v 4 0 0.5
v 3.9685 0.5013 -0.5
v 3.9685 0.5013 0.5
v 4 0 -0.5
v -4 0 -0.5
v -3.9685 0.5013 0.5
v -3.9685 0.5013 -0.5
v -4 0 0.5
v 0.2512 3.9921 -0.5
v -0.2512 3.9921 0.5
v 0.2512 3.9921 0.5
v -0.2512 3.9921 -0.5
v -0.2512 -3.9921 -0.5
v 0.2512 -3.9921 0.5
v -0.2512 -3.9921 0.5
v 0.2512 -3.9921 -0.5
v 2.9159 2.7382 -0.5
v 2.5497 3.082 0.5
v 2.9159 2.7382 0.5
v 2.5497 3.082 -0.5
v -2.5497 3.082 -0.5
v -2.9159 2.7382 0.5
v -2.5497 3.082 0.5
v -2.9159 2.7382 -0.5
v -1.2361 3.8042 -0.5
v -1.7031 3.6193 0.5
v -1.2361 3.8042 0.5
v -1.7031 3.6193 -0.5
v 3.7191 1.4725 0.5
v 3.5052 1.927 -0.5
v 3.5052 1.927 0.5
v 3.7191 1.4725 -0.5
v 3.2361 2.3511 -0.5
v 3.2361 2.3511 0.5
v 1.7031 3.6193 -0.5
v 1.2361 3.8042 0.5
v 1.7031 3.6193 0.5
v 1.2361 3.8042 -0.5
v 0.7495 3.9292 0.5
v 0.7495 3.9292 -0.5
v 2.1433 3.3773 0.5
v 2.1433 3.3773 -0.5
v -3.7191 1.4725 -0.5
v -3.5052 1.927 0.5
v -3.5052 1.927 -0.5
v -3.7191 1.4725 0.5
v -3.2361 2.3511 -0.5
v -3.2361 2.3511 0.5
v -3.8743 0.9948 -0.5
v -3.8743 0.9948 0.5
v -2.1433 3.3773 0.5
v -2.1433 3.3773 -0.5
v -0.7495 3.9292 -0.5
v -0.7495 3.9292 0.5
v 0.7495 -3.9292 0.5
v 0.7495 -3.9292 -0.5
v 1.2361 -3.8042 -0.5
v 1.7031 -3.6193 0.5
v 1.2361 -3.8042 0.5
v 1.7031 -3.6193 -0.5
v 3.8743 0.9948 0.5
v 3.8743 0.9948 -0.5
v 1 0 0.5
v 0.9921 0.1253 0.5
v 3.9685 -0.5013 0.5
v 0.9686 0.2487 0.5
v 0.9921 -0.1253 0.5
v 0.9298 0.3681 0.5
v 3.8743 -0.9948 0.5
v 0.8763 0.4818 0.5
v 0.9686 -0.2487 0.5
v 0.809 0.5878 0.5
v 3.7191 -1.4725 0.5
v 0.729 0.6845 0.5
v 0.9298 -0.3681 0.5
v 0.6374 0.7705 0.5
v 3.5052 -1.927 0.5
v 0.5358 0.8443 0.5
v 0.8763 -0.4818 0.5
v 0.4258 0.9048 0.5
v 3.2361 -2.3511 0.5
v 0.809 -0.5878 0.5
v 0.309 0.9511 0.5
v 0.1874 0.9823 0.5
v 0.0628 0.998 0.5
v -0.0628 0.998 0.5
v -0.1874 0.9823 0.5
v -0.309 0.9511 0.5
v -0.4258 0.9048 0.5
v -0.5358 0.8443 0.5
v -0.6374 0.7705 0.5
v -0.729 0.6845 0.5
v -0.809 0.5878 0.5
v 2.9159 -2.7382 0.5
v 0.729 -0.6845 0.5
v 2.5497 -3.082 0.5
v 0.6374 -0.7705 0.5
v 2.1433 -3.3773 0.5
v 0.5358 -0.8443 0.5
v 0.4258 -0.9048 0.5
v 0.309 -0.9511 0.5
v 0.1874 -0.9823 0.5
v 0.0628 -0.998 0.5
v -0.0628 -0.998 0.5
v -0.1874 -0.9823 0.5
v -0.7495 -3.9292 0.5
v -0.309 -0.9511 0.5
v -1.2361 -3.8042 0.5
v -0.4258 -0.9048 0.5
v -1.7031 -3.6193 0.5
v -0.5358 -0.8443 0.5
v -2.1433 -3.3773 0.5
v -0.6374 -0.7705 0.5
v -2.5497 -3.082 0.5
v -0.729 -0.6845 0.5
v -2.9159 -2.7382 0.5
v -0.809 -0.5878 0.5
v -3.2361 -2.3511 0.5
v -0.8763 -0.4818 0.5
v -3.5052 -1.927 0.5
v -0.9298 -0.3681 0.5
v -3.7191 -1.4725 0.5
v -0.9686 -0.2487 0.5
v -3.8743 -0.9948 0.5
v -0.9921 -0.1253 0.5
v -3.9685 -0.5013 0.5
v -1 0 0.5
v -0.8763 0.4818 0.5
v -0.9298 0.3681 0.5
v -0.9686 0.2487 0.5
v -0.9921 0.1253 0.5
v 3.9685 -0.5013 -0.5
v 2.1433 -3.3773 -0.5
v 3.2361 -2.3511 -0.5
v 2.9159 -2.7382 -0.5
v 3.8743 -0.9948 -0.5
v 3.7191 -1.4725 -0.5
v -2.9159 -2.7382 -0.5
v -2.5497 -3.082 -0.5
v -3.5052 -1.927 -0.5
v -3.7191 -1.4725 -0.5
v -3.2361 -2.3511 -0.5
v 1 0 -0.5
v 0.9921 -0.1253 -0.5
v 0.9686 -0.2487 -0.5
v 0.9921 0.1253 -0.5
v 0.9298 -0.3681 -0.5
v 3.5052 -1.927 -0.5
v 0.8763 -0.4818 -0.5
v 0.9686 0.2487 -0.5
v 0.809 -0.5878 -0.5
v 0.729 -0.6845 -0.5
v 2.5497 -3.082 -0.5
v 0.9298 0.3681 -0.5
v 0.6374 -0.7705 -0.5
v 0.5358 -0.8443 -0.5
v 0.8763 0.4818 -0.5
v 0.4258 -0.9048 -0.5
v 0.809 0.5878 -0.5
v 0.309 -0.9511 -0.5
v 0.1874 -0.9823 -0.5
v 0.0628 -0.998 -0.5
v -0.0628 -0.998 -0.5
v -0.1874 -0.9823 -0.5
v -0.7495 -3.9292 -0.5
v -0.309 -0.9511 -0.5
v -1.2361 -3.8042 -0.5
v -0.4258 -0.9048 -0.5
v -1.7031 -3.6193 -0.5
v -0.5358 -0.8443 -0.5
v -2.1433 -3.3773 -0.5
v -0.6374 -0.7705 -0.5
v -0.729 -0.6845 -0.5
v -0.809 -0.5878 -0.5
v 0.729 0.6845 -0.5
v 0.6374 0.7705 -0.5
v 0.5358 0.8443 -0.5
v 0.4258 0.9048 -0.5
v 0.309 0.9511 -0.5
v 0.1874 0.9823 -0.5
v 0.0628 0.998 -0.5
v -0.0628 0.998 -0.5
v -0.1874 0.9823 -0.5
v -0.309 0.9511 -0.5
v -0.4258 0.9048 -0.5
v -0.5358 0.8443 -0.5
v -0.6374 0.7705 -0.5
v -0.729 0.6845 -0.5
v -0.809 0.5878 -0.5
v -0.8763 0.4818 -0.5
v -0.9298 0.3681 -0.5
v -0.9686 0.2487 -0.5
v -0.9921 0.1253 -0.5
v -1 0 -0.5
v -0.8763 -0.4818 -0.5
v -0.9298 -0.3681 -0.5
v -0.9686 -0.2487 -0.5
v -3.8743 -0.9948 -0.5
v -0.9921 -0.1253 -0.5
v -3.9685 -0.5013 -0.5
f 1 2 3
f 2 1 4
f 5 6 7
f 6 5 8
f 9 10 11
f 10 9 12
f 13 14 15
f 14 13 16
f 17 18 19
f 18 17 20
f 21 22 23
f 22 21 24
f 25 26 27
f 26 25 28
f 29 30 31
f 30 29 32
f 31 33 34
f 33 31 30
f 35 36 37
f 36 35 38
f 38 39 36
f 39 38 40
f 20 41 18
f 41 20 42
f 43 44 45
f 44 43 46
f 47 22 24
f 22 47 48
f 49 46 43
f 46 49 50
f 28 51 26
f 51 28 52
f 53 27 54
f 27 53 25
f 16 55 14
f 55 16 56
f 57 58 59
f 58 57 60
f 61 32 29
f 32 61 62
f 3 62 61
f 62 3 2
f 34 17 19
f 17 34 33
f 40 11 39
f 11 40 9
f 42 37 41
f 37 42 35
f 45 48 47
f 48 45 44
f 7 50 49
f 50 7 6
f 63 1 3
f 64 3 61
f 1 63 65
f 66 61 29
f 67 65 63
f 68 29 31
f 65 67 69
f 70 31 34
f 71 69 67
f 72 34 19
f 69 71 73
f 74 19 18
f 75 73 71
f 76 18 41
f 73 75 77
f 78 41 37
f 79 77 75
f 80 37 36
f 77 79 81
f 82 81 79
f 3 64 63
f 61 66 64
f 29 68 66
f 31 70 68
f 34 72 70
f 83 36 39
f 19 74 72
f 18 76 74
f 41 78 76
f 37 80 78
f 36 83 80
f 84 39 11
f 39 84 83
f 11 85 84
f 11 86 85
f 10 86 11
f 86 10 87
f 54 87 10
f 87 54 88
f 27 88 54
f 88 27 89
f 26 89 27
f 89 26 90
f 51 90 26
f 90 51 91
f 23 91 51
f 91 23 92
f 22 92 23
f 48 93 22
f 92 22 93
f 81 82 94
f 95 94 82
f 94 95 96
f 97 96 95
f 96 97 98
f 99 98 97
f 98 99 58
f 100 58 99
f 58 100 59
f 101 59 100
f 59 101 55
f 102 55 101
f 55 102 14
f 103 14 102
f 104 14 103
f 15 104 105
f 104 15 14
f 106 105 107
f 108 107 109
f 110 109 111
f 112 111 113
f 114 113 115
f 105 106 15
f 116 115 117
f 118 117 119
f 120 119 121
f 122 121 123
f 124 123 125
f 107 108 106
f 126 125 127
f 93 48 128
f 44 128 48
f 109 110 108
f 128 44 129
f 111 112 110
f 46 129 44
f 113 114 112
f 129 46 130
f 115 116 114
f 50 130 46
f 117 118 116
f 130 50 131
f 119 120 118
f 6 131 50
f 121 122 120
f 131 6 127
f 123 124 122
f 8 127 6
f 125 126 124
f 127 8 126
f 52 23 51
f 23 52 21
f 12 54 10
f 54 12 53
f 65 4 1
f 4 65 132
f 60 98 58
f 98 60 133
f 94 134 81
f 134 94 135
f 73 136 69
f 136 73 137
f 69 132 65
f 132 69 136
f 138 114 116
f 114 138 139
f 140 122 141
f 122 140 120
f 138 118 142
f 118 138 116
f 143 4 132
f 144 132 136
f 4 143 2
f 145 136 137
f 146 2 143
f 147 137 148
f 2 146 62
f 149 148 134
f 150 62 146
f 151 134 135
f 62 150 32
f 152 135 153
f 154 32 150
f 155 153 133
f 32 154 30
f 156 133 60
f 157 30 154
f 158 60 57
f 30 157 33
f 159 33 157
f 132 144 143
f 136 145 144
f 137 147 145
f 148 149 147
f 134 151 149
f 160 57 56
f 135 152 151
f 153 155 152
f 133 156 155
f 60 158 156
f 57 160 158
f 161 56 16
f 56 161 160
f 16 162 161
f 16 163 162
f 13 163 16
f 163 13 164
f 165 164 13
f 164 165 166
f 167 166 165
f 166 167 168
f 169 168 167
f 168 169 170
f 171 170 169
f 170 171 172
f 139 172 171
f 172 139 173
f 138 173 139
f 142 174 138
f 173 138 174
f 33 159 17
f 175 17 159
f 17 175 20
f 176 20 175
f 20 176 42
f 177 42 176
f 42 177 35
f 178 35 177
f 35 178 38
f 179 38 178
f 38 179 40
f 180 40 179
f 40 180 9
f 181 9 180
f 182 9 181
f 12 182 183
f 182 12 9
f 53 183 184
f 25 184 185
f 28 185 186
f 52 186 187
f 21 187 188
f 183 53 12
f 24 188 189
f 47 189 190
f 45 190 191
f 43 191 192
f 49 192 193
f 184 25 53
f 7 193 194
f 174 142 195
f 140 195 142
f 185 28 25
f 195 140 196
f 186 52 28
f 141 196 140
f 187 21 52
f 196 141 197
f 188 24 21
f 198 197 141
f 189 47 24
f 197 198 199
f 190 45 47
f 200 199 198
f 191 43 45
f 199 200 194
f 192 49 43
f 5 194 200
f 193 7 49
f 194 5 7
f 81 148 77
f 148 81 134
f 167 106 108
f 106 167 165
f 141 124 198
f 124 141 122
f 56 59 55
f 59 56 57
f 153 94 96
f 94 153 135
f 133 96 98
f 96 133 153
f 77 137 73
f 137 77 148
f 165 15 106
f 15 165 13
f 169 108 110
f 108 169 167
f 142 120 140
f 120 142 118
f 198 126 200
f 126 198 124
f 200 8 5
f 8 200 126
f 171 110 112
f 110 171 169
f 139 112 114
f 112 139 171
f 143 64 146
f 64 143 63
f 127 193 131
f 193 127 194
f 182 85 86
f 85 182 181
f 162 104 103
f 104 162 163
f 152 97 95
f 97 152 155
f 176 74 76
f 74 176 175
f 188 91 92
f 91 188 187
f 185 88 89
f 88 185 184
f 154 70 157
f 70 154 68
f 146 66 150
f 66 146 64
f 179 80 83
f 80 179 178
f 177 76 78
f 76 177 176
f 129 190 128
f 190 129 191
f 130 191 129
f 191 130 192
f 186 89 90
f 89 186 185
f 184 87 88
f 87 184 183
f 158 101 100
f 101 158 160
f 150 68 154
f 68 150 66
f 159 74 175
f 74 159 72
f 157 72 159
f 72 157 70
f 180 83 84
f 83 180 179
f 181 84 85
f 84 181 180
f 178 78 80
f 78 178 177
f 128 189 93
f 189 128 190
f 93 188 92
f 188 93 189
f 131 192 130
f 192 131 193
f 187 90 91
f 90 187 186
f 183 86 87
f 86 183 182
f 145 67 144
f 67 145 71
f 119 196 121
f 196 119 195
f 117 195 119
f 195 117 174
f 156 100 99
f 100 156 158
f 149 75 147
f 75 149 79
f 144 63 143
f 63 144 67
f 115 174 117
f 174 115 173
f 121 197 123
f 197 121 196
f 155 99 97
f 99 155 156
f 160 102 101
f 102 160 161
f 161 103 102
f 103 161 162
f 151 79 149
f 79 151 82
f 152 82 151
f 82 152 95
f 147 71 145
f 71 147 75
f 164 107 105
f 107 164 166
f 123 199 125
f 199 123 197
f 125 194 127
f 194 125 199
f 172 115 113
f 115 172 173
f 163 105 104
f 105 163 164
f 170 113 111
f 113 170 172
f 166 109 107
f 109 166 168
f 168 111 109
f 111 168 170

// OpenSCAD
$fn = 50;


difference() {
	union() {
		translate(v = [0, 0, -0.5000000000]) {
			cylinder(h = 1, r = 4.0000000000);
		}
	}
	union() {
		translate(v = [0, 0, -100.0000000000]) {
			cylinder(h = 200, r = 1.0000000000);
		}
	}
}
